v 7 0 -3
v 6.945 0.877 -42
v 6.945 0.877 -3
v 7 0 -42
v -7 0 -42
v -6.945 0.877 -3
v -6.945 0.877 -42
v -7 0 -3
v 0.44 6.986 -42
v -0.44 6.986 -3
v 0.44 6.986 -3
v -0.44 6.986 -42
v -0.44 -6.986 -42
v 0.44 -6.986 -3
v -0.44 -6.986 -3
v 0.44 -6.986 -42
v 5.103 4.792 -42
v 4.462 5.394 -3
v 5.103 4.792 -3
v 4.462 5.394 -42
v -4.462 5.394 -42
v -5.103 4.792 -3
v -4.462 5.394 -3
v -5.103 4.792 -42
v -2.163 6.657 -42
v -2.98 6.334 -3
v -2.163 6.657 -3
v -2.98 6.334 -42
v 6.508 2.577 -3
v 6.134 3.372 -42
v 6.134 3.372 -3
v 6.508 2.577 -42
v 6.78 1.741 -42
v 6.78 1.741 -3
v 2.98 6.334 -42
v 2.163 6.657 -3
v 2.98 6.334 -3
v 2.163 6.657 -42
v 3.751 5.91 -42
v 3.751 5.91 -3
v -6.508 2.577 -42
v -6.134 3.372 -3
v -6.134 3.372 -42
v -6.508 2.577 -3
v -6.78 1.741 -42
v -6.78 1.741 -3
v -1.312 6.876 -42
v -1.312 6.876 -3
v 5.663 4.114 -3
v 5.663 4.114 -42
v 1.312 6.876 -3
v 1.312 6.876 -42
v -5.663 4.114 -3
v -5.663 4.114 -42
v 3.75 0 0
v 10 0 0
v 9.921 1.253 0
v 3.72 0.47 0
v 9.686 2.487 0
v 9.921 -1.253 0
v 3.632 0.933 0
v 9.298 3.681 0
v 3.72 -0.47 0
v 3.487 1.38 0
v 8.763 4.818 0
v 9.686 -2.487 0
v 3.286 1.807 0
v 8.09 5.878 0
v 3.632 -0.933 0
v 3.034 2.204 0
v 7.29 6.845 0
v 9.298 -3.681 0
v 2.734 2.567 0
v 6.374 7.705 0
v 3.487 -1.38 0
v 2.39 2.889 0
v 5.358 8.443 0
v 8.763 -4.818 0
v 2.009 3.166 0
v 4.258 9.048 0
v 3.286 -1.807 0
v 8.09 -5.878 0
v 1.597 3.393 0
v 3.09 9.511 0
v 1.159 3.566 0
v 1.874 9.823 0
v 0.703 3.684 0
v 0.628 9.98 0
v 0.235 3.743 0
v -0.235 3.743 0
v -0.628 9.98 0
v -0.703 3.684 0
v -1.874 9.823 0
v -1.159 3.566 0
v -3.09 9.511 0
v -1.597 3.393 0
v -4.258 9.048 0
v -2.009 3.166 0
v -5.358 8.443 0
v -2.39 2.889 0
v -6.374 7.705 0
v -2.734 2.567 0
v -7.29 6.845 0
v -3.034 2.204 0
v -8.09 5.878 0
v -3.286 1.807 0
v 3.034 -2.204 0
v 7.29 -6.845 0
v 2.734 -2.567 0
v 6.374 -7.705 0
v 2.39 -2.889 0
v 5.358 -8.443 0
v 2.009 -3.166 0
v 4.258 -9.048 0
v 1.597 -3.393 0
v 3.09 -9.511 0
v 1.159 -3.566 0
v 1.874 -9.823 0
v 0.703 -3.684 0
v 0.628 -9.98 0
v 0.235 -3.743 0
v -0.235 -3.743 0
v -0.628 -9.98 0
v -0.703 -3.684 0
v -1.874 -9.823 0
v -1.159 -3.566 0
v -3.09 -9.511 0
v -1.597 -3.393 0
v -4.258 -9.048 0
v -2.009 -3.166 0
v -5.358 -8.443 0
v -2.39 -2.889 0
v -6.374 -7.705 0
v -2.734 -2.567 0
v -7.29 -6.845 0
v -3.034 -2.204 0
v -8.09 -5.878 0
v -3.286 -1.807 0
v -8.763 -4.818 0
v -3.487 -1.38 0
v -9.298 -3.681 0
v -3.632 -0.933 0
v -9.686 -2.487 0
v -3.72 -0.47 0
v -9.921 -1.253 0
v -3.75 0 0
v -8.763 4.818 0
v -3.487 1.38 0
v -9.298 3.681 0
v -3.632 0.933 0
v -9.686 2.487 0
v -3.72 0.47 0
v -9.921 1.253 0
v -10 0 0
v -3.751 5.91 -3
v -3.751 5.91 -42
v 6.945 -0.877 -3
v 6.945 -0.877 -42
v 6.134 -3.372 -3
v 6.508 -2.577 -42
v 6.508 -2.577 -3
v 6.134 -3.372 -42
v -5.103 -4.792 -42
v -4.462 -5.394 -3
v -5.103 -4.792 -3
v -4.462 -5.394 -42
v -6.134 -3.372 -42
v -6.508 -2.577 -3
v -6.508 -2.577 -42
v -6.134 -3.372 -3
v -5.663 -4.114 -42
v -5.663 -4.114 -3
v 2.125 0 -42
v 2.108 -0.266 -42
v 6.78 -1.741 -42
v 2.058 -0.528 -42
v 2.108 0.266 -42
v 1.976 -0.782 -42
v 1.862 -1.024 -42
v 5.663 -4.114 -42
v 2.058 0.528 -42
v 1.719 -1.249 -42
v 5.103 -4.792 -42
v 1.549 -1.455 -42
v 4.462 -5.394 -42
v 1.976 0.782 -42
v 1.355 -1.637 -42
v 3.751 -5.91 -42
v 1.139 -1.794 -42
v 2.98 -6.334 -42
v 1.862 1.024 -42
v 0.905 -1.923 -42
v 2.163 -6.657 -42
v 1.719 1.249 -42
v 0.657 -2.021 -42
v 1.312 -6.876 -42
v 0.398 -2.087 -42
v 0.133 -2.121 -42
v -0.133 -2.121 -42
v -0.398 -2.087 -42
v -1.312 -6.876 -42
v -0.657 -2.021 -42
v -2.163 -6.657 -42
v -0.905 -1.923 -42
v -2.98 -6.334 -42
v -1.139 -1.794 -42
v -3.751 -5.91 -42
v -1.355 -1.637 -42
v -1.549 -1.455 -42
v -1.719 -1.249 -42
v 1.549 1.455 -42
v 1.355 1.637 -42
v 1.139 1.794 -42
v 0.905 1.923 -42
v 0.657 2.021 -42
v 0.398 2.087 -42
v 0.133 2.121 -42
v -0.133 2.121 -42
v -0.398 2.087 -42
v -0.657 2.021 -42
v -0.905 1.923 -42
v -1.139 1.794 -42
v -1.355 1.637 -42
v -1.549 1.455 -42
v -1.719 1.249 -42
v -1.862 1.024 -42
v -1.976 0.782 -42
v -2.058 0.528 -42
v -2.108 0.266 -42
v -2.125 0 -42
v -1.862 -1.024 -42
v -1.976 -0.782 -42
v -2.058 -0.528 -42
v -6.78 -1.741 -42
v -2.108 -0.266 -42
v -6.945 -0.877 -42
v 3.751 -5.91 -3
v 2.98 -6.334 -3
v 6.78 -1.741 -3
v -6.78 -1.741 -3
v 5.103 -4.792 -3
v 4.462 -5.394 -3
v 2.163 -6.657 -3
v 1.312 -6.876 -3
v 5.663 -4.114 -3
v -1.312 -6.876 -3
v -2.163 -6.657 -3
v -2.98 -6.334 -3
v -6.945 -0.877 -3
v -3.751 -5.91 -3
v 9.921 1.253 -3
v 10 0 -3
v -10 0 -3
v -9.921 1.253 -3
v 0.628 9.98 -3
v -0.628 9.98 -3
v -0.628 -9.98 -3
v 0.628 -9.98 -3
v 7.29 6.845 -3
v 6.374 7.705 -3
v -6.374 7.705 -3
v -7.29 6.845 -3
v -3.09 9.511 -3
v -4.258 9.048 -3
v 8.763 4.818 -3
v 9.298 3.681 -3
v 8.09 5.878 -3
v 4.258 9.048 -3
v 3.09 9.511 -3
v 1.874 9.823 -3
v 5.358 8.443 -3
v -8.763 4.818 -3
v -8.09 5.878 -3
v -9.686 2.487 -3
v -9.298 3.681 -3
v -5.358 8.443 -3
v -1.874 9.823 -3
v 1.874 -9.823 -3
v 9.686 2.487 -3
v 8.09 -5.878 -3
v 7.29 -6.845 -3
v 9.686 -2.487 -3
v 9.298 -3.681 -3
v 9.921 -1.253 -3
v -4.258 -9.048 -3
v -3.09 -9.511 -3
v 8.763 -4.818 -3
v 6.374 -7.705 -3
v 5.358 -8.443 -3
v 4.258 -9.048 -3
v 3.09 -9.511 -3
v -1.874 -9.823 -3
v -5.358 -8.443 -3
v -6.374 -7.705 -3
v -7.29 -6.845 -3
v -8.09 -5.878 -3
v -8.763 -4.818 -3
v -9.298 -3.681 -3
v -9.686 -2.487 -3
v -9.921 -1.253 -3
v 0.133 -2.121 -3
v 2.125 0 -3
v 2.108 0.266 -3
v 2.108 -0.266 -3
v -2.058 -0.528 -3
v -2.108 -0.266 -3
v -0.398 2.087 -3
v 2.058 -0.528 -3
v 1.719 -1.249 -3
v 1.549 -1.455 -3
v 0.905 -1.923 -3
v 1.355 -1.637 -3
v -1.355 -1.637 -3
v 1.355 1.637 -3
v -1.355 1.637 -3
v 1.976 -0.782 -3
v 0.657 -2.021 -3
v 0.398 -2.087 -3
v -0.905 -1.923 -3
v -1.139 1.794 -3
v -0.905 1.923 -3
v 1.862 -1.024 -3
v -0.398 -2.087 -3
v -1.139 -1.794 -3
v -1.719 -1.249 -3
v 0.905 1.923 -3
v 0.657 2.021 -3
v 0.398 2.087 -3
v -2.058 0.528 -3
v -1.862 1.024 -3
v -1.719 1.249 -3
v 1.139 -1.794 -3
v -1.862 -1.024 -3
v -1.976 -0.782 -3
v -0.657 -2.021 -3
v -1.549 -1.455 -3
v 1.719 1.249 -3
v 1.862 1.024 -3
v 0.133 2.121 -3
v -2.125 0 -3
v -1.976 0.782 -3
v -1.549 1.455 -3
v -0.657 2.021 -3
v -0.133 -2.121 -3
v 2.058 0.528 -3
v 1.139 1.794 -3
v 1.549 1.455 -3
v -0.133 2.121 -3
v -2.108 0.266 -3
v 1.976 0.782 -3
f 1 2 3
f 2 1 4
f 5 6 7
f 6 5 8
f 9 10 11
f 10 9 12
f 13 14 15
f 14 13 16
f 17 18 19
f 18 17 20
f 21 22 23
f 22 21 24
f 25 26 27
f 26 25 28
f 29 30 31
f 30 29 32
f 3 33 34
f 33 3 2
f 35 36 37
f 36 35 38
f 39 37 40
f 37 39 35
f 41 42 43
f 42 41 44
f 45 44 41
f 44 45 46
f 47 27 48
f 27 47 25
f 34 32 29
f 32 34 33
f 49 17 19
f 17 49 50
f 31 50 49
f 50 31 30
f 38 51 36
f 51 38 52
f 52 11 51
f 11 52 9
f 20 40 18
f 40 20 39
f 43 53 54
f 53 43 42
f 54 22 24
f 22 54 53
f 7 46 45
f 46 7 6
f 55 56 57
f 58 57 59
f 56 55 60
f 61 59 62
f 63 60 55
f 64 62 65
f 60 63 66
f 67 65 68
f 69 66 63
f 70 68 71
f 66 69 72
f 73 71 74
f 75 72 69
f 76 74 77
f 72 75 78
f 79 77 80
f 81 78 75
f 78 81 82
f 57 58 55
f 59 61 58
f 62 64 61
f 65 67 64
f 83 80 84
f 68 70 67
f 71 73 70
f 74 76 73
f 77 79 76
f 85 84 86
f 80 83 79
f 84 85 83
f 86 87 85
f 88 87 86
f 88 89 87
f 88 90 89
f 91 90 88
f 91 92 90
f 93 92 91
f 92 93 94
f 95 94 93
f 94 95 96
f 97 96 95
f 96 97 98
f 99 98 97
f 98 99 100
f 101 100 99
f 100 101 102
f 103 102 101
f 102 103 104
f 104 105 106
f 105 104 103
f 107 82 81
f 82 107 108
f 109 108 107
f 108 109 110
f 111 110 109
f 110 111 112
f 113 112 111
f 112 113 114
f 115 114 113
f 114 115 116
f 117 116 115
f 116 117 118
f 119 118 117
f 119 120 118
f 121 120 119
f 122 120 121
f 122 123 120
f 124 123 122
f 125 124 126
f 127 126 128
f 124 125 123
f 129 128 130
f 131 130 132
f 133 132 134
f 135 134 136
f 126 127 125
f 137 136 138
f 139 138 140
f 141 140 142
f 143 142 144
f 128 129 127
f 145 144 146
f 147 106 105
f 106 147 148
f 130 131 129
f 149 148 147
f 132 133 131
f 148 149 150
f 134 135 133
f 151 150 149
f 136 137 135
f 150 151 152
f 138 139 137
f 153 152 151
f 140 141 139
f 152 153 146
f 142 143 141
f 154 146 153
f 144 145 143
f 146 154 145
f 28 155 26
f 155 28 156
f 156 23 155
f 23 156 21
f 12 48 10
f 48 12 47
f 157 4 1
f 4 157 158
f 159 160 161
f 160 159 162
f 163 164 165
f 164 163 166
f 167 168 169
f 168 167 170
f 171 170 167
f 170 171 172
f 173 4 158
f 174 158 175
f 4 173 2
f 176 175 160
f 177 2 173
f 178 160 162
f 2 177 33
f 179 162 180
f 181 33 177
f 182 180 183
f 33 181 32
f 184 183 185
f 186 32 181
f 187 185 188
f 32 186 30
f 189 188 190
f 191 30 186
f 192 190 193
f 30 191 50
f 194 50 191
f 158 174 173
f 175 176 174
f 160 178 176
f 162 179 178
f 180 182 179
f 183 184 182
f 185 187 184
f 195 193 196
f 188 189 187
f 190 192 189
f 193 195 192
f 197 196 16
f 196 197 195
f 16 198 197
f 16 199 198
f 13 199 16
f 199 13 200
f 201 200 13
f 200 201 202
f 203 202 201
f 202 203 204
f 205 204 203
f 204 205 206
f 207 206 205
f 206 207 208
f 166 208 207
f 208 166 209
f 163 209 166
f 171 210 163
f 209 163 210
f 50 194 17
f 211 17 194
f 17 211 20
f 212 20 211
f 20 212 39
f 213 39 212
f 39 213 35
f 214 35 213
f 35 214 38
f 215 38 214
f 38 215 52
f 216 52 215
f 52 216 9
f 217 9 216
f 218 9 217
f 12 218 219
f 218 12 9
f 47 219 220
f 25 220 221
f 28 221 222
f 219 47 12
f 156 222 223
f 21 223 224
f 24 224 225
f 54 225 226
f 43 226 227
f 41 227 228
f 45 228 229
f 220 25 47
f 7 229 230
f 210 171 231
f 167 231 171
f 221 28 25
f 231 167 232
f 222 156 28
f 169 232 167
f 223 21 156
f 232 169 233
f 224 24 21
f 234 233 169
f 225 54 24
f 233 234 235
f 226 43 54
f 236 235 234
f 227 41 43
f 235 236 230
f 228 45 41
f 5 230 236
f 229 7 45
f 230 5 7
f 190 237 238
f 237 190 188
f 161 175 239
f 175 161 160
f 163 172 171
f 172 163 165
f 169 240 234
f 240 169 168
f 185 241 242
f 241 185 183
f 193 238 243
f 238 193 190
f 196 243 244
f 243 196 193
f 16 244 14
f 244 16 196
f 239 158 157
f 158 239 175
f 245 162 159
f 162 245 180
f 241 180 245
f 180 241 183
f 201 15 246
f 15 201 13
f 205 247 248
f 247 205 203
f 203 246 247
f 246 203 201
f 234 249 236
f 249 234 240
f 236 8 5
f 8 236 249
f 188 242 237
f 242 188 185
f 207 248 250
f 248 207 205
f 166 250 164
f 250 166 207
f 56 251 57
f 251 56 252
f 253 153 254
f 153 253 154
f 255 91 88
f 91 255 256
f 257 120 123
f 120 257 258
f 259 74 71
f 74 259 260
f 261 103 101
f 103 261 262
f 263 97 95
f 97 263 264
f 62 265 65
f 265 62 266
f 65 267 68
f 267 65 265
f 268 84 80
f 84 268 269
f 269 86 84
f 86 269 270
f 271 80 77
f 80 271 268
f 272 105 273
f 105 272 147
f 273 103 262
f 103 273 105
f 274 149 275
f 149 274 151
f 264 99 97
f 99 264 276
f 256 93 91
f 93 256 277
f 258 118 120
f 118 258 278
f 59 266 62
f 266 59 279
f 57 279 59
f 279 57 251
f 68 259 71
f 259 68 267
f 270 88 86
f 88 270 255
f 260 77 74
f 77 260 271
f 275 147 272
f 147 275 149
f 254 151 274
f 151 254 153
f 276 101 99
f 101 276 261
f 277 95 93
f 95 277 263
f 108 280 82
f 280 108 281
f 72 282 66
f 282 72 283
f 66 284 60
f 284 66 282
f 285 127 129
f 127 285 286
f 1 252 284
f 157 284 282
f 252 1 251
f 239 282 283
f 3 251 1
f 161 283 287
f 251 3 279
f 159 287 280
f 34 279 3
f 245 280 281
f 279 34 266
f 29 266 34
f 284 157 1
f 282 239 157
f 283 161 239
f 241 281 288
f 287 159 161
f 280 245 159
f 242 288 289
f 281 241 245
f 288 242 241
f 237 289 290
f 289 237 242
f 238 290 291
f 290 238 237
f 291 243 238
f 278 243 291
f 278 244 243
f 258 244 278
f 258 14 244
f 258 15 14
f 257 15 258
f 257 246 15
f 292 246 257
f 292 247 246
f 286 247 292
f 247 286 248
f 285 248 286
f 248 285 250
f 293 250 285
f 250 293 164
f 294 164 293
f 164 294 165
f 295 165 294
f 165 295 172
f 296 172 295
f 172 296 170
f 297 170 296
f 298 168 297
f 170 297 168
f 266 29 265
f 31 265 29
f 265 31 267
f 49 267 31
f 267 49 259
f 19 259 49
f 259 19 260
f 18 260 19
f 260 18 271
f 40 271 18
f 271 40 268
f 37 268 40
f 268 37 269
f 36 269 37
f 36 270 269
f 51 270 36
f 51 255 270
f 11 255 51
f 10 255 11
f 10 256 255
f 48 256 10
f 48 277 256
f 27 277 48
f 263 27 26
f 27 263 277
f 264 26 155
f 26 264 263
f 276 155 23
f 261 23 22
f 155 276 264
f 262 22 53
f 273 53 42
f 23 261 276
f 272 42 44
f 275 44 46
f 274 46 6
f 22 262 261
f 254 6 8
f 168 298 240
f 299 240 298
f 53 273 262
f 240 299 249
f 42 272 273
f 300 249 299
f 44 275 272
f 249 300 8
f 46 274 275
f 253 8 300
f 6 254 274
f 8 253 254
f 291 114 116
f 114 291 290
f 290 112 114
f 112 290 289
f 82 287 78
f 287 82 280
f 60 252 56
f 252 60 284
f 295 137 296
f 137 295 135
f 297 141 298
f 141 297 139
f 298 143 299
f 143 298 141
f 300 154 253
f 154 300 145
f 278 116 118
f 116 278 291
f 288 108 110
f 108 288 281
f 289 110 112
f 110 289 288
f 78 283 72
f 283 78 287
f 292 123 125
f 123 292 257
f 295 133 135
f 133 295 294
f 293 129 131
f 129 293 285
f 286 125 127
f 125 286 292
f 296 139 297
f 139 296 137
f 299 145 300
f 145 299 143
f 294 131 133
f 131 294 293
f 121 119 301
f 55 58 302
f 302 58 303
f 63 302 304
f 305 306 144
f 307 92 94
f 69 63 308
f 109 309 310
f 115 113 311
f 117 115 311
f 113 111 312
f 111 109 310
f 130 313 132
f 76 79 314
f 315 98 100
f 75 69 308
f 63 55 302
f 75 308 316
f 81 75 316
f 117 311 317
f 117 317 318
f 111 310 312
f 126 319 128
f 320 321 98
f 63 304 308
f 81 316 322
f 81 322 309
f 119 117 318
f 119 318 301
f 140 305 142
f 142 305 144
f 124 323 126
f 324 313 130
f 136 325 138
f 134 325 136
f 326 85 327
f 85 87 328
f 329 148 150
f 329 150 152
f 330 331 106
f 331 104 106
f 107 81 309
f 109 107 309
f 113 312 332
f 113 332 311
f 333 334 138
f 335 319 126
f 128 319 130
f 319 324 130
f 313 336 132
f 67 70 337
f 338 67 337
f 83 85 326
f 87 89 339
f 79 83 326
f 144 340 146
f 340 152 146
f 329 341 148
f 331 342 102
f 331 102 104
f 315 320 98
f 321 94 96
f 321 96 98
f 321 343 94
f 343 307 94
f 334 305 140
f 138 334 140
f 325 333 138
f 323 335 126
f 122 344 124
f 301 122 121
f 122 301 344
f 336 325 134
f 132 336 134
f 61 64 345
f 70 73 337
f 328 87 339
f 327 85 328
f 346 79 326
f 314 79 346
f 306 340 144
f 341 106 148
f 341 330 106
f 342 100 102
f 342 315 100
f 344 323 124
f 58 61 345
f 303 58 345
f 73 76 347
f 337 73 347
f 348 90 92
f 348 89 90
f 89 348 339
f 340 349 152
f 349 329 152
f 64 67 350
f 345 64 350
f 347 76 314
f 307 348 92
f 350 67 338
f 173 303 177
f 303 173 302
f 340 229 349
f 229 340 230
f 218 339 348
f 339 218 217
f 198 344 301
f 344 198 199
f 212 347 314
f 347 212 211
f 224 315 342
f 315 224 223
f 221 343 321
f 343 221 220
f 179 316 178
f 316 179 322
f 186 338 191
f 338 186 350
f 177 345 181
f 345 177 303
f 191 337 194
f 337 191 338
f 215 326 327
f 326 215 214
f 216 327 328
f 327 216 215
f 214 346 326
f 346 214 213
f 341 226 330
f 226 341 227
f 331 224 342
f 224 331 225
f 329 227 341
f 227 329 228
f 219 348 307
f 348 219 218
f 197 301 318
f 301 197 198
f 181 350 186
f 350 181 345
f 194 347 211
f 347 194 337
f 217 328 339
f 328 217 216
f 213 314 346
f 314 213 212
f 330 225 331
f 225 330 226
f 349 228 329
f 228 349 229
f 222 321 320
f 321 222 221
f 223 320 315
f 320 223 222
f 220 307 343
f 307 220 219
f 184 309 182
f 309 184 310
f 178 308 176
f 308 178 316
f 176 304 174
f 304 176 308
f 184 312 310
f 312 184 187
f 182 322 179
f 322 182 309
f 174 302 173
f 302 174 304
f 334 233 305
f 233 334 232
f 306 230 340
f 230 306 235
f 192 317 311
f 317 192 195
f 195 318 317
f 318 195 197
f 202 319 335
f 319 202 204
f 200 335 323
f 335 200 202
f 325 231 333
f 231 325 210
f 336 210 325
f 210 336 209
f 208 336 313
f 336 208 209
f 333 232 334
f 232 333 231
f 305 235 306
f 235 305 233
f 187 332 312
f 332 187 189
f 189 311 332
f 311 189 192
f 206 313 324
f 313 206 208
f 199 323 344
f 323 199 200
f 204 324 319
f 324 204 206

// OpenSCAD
$fn = 50;


difference() {
	union() {
		translate(v = [0, 0, -42.0000000000]) {
			cylinder(h = 42, r = 7.0000000000);
		}
		translate(v = [0, 0, -3.0000000000]) {
			cylinder(h = 3, r = 10.0000000000);
		}
	}
	union() {
		translate(v = [0, 0, 0]) {
			rotate(a = [0, 0, 0]) {
				difference() {
					union() {
						#translate(v = [0, 0, -42.0000000000]) {
							cylinder(h = 42, r = 2.0000000000);
						}
						#translate(v = [0, 0, -3]) {
							cylinder(h = 3, r = 7.0000000000, r1 = 2.1250000000, r2 = 3.7500000000);
						}
						#translate(v = [0, 0, -42.0000000000]) {
							cylinder(h = 42, r = 2.1250000000);
						}
						#translate(v = [0, 0, -42.0000000000]) {
							cylinder(h = 42, r = 2.0000000000);
						}
					}
					union();
				}
			}
		}
	}
}
